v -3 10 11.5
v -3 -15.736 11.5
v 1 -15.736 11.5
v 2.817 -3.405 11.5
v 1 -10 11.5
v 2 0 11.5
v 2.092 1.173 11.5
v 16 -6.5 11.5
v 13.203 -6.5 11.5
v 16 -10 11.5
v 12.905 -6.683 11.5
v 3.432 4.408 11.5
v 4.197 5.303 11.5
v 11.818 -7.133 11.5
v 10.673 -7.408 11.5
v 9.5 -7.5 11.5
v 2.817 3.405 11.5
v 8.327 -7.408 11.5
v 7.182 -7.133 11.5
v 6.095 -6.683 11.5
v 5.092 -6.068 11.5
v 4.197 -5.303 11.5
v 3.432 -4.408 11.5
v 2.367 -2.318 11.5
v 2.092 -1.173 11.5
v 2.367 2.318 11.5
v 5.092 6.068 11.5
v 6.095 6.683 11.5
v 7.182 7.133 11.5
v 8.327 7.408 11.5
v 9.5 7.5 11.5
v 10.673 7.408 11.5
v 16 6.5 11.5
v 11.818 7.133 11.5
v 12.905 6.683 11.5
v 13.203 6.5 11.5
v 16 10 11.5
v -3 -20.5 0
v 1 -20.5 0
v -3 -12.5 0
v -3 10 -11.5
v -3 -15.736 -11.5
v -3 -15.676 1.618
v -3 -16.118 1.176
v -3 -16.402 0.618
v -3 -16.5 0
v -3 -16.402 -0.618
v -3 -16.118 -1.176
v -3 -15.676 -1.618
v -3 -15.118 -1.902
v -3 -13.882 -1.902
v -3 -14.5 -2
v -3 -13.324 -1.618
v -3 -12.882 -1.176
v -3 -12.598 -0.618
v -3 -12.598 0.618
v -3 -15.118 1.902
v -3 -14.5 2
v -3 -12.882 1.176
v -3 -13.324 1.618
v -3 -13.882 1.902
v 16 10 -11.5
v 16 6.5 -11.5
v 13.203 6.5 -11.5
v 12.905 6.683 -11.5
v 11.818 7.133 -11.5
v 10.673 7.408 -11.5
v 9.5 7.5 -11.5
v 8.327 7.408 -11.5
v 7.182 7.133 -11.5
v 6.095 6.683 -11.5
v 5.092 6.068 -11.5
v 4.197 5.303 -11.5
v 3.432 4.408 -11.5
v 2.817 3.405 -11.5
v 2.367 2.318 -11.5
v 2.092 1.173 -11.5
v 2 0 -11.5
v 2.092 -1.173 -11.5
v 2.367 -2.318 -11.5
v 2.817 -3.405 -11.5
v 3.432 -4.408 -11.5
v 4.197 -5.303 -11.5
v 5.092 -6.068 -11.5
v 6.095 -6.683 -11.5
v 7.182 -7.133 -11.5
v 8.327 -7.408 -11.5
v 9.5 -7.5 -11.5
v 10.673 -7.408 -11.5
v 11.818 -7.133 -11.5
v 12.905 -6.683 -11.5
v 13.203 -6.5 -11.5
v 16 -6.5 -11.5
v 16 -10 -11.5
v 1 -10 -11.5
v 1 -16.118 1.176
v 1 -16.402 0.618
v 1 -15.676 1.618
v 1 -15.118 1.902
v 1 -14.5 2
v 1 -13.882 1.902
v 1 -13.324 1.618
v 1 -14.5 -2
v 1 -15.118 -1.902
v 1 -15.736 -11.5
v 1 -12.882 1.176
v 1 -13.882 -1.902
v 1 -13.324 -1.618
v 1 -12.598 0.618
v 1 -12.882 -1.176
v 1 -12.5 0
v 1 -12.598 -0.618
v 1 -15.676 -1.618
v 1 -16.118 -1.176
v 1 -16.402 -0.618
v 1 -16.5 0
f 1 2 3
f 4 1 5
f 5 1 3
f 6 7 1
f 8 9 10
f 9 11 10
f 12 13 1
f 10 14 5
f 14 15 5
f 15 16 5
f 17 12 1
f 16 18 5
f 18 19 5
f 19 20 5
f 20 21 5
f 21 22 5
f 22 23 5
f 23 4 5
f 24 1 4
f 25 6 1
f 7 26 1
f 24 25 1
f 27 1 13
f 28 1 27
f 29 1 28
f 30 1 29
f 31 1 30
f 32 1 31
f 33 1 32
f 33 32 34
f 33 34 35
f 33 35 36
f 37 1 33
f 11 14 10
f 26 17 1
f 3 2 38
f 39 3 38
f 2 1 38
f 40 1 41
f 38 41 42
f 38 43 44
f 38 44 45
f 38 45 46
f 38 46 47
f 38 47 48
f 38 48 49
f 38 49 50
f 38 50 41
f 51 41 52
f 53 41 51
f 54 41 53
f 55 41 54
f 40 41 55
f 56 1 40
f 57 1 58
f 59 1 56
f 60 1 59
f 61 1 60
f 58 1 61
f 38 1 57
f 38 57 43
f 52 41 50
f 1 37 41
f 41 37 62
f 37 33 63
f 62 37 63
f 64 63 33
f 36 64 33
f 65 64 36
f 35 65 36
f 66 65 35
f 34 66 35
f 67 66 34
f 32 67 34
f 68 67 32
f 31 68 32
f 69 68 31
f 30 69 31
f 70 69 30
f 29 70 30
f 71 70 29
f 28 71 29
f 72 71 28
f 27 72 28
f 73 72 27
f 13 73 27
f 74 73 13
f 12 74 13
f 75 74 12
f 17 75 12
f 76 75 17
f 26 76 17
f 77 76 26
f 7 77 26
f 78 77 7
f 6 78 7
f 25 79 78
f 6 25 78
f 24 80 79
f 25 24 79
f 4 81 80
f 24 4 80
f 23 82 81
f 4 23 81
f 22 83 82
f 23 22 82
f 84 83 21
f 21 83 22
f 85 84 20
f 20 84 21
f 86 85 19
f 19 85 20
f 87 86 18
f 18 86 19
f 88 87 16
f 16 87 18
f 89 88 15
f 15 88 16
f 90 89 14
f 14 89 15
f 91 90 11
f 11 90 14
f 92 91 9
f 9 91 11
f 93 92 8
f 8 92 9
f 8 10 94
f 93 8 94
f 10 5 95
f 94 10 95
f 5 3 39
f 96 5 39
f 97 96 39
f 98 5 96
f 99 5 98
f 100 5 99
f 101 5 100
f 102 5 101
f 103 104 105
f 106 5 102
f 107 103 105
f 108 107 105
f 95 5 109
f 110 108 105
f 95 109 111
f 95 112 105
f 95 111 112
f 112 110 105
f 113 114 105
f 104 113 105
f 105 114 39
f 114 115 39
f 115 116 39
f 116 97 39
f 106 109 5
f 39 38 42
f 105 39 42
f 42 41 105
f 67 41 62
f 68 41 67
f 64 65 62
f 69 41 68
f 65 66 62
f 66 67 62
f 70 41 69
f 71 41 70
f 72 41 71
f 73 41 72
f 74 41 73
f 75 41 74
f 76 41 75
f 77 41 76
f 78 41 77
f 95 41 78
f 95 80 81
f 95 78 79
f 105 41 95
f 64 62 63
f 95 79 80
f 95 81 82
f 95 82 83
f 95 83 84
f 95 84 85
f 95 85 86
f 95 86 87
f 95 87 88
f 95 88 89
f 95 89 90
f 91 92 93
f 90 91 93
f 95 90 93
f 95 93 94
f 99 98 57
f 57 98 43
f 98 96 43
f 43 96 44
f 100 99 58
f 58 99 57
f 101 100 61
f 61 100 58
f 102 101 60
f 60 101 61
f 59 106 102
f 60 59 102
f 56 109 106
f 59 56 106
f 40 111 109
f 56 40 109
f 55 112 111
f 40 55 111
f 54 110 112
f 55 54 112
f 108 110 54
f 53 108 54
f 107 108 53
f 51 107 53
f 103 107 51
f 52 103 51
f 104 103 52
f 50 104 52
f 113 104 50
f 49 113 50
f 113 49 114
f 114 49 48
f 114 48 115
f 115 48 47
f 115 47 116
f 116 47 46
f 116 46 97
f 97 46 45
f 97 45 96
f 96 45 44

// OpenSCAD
// file: ../libs/linear_bearing.scad
//By Glen Chung, 2013.
//Dual licenced under Creative Commons Attribution-Share Alike 3.0 and LGPL2 or later

include <MCAD/units.scad>
include <MCAD/materials.scad>

LINEAR_BEARING_dr = 0;  //Inscribed circle
LINEAR_BEARING_D  = 1;  //Outer diameter
LINEAR_BEARING_L  = 2;  //Length
LINEAR_BEARING_B  = 3;  //Outer locking groove B
LINEAR_BEARING_D1 = 4;  //Outer locking groove D1
LINEAR_BEARING_W  = 5;  //W


// Common bearing names
LinearBearing = "LM8UU";

// Linear Bearing dimensions
//  model == "XXXXX"   ?   [    dr,      D,      L,        B,      D1,       W]:
function linearBearingDimensions(model) =
    model == "LM3UU"   ?   [  3*mm,   7*mm,  10*mm,   0.0*mm,   0.0*mm, 0.00*mm]:
    model == "LM4UU"   ?   [  4*mm,   8*mm,  12*mm,   0.0*mm,   0.0*mm, 0.00*mm]:
    model == "LM5UU"   ?   [  5*mm,  10*mm,  15*mm,  10.2*mm,   9.6*mm, 1.10*mm]:
    model == "LM6UU"   ?   [  6*mm,  12*mm,  19*mm,  13.5*mm,  11.5*mm, 1.10*mm]:
    model == "LM8SUU"  ?   [  8*mm,  15*mm,  17*mm,  11.5*mm,  14.3*mm, 1.10*mm]:
    model == "LM10UU"  ?   [ 10*mm,  19*mm,  29*mm,  22.0*mm,  18.0*mm, 1.30*mm]:
    model == "LM12UU"  ?   [ 12*mm,  21*mm,  30*mm,  23.0*mm,  20.0*mm, 1.30*mm]:
    model == "LM13UU"  ?   [ 13*mm,  23*mm,  32*mm,  23.0*mm,  22.0*mm, 1.30*mm]:
    model == "LM16UU"  ?   [ 16*mm,  28*mm,  37*mm,  26.5*mm,  27.0*mm, 1.60*mm]:
    model == "LM20UU"  ?   [ 20*mm,  32*mm,  42*mm,  30.5*mm,  30.5*mm, 1.60*mm]:
    model == "LM25UU"  ?   [ 25*mm,  40*mm,  59*mm,  41.0*mm,  38.0*mm, 1.85*mm]:
    model == "LM30UU"  ?   [ 30*mm,  45*mm,  64*mm,  44.5*mm,  43.0*mm, 1.85*mm]:
    model == "LM35UU"  ?   [ 35*mm,  52*mm,  70*mm,  49.5*mm,  49.0*mm, 2.10*mm]:
    model == "LM40UU"  ?   [ 40*mm,  60*mm,  80*mm,  60.5*mm,  57.0*mm, 2.10*mm]:
    model == "LM50UU"  ?   [ 50*mm,  80*mm, 100*mm,  74.0*mm,  76.5*mm, 2.60*mm]:
    model == "LM60UU"  ?   [ 60*mm,  90*mm, 110*mm,  85.0*mm,  86.5*mm, 3.15*mm]:
    model == "LM80UU"  ?   [ 80*mm, 120*mm, 140*mm, 105.5*mm, 116.0*mm, 4.15*mm]:
    model == "LM100UU" ?   [100*mm, 150*mm, 150*mm, 125.5*mm, 145.0*mm, 4.15*mm]:
  /*model == "LM8UU"   ?*/ [  8*mm,  15*mm,  24*mm,  17.5*mm,  14.3*mm, 1.10*mm];


function linearBearing_dr(model) = linearBearingDimensions(model)[LINEAR_BEARING_dr];
function linearBearing_D(model)  = linearBearingDimensions(model)[LINEAR_BEARING_D];
function linearBearing_L(model)  = linearBearingDimensions(model)[LINEAR_BEARING_L];
function linearBearing_B(model)  = linearBearingDimensions(model)[LINEAR_BEARING_B];
function linearBearing_D1(model) = linearBearingDimensions(model)[LINEAR_BEARING_D1];
function linearBearing_W(model)  = linearBearingDimensions(model)[LINEAR_BEARING_W];

module linearBearing(pos=[0,0,0], angle=[0,0,0], model=LinearBearing,
                material=Steel, sideMaterial=BlackPaint) {
  dr = linearBearing_dr(model);
  D  = linearBearing_D(model);
  L  = linearBearing_L(model);
  B  = linearBearing_B(model);
  D1 = linearBearing_D1(model);
  W  = linearBearing_W(model);

  innerRim = dr + (D - dr) * 0.2;
  outerRim = D - (D - dr) * 0.2;
  midSink = W/4;

  translate(pos) rotate(angle) union() {
    color(material)
      difference() {
        // Basic ring
        Ring([0,0,0], D, dr, L, material, material);

        if(W) {
          // Side shields
          Ring([0,0,-epsilon], outerRim, innerRim, L*epsilon+midSink, sideMaterial, material);
          Ring([0,0,L-midSink-epsilon], outerRim, innerRim, L*epsilon+midSink, sideMaterial, material);
          //Outer locking groove
          Ring([0,0,(L-B)/2], D+epsilon, outerRim+W/2, W, material, material);
          Ring([0,0,L-(L-B)/2], D+epsilon, outerRim+W/2, W, material, material);
        }
      }
      if(W)
        Ring([0,0,midSink], D-L*epsilon, dr+L*epsilon, L-midSink*2, sideMaterial, sideMaterial);
  }

  module Ring(pos, od, id, h, material, holeMaterial) {
    color(material) {
      translate(pos)
        difference() {
          cylinder(r=od/2, h=h,  $fn = 100);
          color(holeMaterial)
            translate([0,0,-10*epsilon])
              cylinder(r=id/2, h=h+20*epsilon,  $fn = 100);
        }
    }
  }

}


//examples
//linearBearing(model="LM8UU");
//linearBearing(model="LM10UU");
// main file
// LM8UU bushing holder modified for its use in Cyclone PCB Factory
// Modified to have only one center screw

// Derived by Carlosgs from:

// LM8UU bushing holder
// http://www.thingiverse.com/thing:23041 by thantik
// Inspired/derived from:

//http://www.thingiverse.com/thing:14942
//Which is derived from:
// http://www.thingiverse.com/thing:14814
//And is a drop-in replacement for:
//http://www.thingiverse.com/thing:10287

include <MCAD/materials.scad>
include <MCAD/metric_fastners.scad>
use <../libs/linear_bearing.scad>

// screw/nut dimensions
screw_dia = 4;
nut_dia = 8.5;
nut_height=2;

// main body dimensions
body_width = 20;
gap_width = 14;
body_height = 16;
body_length=23;
LM8UU_dia = 15.0;
screw_elevation = body_height-1.5;

//mounting plate dimensions
plate_height = 4;
plate_length=body_length;
plate_width=body_width+11;
screw_space_x = -14.5*2;
screw_space_y = 0;

module mount_plate()
{
	difference()
	{
		//bottom plate
		translate([-plate_width+body_width/2,-plate_length/2,-3])
			cube([plate_width,plate_length,plate_height]);

		//screw holes
		translate([screw_space_x/2,screw_space_y/2,-8.1])
			cylinder(r=screw_dia/2, h=plate_height+10, $fn=20);
//		translate([-screw_space_x/2,-screw_space_y/2,-8.1])
//			cylinder(r=screw_dia/2, h=plate_height+1, $fn=20);

		//nut traps


	}
}

module lm8uu_bearing_holder(with_extra_parts=false, exploded=false) {
	intersection() {
     rotate([90,0,90])
      difference()
		{
			union()
			{
				mount_plate();
		
				translate([-body_width/2,-body_length/2,0])
					cube([body_width,body_length,body_height]);
			}
		
			// bushing hole
			translate([0,0,LM8UU_dia/2+2])
				rotate([90,0,0])
					cylinder(r=LM8UU_dia/2, h=body_length+0.1, center=true, $fn=40);
		
			// top gap
			translate([0,0,20])
				cube([gap_width-1,body_length+0.1,20],center=true);
		}
	   rotate([90,45,90])
	     //cube([plate_width+3,plate_width+3,100],center=true);
	     cylinder(r=(plate_width+10)/2,h=100,center=true,$fn=8);
	}
  if(with_extra_parts)
    lm8uu_bearing_holder_extras(exploded_distance=(exploded?1.3*linearBearing_L("LM8UU"):0));

  module lm8uu_bearing_holder_extras(exploded_distance=0) {
    echo("Non-Plastic Parts, 1, Linear Bearing LM8UU for lm8uu_bearing_holder");
    rotate([90,0,90]) translate([0,0,LM8UU_dia/2+2]) rotate([90,0,0])
      translate([0,0,exploded_distance])
        linearBearing(pos=[0,0,-linearBearing_L("LM8UU")/2], model="LM8UU");

    screw_size = 3.5;
    screw_length = 13;
    echo("Non-Plastic Parts, 1, Self Tapping Screw 3.5 x 13 mm to attach lm8uu_bearing_holder on work bed");
    translate([plate_height-3+0.2+0.5*exploded_distance,screw_space_x/2,0]) rotate([0,-90,0])
      color(Steel) csk_bolt(screw_size, screw_length);
  }

}



lm8uu_bearing_holder();
